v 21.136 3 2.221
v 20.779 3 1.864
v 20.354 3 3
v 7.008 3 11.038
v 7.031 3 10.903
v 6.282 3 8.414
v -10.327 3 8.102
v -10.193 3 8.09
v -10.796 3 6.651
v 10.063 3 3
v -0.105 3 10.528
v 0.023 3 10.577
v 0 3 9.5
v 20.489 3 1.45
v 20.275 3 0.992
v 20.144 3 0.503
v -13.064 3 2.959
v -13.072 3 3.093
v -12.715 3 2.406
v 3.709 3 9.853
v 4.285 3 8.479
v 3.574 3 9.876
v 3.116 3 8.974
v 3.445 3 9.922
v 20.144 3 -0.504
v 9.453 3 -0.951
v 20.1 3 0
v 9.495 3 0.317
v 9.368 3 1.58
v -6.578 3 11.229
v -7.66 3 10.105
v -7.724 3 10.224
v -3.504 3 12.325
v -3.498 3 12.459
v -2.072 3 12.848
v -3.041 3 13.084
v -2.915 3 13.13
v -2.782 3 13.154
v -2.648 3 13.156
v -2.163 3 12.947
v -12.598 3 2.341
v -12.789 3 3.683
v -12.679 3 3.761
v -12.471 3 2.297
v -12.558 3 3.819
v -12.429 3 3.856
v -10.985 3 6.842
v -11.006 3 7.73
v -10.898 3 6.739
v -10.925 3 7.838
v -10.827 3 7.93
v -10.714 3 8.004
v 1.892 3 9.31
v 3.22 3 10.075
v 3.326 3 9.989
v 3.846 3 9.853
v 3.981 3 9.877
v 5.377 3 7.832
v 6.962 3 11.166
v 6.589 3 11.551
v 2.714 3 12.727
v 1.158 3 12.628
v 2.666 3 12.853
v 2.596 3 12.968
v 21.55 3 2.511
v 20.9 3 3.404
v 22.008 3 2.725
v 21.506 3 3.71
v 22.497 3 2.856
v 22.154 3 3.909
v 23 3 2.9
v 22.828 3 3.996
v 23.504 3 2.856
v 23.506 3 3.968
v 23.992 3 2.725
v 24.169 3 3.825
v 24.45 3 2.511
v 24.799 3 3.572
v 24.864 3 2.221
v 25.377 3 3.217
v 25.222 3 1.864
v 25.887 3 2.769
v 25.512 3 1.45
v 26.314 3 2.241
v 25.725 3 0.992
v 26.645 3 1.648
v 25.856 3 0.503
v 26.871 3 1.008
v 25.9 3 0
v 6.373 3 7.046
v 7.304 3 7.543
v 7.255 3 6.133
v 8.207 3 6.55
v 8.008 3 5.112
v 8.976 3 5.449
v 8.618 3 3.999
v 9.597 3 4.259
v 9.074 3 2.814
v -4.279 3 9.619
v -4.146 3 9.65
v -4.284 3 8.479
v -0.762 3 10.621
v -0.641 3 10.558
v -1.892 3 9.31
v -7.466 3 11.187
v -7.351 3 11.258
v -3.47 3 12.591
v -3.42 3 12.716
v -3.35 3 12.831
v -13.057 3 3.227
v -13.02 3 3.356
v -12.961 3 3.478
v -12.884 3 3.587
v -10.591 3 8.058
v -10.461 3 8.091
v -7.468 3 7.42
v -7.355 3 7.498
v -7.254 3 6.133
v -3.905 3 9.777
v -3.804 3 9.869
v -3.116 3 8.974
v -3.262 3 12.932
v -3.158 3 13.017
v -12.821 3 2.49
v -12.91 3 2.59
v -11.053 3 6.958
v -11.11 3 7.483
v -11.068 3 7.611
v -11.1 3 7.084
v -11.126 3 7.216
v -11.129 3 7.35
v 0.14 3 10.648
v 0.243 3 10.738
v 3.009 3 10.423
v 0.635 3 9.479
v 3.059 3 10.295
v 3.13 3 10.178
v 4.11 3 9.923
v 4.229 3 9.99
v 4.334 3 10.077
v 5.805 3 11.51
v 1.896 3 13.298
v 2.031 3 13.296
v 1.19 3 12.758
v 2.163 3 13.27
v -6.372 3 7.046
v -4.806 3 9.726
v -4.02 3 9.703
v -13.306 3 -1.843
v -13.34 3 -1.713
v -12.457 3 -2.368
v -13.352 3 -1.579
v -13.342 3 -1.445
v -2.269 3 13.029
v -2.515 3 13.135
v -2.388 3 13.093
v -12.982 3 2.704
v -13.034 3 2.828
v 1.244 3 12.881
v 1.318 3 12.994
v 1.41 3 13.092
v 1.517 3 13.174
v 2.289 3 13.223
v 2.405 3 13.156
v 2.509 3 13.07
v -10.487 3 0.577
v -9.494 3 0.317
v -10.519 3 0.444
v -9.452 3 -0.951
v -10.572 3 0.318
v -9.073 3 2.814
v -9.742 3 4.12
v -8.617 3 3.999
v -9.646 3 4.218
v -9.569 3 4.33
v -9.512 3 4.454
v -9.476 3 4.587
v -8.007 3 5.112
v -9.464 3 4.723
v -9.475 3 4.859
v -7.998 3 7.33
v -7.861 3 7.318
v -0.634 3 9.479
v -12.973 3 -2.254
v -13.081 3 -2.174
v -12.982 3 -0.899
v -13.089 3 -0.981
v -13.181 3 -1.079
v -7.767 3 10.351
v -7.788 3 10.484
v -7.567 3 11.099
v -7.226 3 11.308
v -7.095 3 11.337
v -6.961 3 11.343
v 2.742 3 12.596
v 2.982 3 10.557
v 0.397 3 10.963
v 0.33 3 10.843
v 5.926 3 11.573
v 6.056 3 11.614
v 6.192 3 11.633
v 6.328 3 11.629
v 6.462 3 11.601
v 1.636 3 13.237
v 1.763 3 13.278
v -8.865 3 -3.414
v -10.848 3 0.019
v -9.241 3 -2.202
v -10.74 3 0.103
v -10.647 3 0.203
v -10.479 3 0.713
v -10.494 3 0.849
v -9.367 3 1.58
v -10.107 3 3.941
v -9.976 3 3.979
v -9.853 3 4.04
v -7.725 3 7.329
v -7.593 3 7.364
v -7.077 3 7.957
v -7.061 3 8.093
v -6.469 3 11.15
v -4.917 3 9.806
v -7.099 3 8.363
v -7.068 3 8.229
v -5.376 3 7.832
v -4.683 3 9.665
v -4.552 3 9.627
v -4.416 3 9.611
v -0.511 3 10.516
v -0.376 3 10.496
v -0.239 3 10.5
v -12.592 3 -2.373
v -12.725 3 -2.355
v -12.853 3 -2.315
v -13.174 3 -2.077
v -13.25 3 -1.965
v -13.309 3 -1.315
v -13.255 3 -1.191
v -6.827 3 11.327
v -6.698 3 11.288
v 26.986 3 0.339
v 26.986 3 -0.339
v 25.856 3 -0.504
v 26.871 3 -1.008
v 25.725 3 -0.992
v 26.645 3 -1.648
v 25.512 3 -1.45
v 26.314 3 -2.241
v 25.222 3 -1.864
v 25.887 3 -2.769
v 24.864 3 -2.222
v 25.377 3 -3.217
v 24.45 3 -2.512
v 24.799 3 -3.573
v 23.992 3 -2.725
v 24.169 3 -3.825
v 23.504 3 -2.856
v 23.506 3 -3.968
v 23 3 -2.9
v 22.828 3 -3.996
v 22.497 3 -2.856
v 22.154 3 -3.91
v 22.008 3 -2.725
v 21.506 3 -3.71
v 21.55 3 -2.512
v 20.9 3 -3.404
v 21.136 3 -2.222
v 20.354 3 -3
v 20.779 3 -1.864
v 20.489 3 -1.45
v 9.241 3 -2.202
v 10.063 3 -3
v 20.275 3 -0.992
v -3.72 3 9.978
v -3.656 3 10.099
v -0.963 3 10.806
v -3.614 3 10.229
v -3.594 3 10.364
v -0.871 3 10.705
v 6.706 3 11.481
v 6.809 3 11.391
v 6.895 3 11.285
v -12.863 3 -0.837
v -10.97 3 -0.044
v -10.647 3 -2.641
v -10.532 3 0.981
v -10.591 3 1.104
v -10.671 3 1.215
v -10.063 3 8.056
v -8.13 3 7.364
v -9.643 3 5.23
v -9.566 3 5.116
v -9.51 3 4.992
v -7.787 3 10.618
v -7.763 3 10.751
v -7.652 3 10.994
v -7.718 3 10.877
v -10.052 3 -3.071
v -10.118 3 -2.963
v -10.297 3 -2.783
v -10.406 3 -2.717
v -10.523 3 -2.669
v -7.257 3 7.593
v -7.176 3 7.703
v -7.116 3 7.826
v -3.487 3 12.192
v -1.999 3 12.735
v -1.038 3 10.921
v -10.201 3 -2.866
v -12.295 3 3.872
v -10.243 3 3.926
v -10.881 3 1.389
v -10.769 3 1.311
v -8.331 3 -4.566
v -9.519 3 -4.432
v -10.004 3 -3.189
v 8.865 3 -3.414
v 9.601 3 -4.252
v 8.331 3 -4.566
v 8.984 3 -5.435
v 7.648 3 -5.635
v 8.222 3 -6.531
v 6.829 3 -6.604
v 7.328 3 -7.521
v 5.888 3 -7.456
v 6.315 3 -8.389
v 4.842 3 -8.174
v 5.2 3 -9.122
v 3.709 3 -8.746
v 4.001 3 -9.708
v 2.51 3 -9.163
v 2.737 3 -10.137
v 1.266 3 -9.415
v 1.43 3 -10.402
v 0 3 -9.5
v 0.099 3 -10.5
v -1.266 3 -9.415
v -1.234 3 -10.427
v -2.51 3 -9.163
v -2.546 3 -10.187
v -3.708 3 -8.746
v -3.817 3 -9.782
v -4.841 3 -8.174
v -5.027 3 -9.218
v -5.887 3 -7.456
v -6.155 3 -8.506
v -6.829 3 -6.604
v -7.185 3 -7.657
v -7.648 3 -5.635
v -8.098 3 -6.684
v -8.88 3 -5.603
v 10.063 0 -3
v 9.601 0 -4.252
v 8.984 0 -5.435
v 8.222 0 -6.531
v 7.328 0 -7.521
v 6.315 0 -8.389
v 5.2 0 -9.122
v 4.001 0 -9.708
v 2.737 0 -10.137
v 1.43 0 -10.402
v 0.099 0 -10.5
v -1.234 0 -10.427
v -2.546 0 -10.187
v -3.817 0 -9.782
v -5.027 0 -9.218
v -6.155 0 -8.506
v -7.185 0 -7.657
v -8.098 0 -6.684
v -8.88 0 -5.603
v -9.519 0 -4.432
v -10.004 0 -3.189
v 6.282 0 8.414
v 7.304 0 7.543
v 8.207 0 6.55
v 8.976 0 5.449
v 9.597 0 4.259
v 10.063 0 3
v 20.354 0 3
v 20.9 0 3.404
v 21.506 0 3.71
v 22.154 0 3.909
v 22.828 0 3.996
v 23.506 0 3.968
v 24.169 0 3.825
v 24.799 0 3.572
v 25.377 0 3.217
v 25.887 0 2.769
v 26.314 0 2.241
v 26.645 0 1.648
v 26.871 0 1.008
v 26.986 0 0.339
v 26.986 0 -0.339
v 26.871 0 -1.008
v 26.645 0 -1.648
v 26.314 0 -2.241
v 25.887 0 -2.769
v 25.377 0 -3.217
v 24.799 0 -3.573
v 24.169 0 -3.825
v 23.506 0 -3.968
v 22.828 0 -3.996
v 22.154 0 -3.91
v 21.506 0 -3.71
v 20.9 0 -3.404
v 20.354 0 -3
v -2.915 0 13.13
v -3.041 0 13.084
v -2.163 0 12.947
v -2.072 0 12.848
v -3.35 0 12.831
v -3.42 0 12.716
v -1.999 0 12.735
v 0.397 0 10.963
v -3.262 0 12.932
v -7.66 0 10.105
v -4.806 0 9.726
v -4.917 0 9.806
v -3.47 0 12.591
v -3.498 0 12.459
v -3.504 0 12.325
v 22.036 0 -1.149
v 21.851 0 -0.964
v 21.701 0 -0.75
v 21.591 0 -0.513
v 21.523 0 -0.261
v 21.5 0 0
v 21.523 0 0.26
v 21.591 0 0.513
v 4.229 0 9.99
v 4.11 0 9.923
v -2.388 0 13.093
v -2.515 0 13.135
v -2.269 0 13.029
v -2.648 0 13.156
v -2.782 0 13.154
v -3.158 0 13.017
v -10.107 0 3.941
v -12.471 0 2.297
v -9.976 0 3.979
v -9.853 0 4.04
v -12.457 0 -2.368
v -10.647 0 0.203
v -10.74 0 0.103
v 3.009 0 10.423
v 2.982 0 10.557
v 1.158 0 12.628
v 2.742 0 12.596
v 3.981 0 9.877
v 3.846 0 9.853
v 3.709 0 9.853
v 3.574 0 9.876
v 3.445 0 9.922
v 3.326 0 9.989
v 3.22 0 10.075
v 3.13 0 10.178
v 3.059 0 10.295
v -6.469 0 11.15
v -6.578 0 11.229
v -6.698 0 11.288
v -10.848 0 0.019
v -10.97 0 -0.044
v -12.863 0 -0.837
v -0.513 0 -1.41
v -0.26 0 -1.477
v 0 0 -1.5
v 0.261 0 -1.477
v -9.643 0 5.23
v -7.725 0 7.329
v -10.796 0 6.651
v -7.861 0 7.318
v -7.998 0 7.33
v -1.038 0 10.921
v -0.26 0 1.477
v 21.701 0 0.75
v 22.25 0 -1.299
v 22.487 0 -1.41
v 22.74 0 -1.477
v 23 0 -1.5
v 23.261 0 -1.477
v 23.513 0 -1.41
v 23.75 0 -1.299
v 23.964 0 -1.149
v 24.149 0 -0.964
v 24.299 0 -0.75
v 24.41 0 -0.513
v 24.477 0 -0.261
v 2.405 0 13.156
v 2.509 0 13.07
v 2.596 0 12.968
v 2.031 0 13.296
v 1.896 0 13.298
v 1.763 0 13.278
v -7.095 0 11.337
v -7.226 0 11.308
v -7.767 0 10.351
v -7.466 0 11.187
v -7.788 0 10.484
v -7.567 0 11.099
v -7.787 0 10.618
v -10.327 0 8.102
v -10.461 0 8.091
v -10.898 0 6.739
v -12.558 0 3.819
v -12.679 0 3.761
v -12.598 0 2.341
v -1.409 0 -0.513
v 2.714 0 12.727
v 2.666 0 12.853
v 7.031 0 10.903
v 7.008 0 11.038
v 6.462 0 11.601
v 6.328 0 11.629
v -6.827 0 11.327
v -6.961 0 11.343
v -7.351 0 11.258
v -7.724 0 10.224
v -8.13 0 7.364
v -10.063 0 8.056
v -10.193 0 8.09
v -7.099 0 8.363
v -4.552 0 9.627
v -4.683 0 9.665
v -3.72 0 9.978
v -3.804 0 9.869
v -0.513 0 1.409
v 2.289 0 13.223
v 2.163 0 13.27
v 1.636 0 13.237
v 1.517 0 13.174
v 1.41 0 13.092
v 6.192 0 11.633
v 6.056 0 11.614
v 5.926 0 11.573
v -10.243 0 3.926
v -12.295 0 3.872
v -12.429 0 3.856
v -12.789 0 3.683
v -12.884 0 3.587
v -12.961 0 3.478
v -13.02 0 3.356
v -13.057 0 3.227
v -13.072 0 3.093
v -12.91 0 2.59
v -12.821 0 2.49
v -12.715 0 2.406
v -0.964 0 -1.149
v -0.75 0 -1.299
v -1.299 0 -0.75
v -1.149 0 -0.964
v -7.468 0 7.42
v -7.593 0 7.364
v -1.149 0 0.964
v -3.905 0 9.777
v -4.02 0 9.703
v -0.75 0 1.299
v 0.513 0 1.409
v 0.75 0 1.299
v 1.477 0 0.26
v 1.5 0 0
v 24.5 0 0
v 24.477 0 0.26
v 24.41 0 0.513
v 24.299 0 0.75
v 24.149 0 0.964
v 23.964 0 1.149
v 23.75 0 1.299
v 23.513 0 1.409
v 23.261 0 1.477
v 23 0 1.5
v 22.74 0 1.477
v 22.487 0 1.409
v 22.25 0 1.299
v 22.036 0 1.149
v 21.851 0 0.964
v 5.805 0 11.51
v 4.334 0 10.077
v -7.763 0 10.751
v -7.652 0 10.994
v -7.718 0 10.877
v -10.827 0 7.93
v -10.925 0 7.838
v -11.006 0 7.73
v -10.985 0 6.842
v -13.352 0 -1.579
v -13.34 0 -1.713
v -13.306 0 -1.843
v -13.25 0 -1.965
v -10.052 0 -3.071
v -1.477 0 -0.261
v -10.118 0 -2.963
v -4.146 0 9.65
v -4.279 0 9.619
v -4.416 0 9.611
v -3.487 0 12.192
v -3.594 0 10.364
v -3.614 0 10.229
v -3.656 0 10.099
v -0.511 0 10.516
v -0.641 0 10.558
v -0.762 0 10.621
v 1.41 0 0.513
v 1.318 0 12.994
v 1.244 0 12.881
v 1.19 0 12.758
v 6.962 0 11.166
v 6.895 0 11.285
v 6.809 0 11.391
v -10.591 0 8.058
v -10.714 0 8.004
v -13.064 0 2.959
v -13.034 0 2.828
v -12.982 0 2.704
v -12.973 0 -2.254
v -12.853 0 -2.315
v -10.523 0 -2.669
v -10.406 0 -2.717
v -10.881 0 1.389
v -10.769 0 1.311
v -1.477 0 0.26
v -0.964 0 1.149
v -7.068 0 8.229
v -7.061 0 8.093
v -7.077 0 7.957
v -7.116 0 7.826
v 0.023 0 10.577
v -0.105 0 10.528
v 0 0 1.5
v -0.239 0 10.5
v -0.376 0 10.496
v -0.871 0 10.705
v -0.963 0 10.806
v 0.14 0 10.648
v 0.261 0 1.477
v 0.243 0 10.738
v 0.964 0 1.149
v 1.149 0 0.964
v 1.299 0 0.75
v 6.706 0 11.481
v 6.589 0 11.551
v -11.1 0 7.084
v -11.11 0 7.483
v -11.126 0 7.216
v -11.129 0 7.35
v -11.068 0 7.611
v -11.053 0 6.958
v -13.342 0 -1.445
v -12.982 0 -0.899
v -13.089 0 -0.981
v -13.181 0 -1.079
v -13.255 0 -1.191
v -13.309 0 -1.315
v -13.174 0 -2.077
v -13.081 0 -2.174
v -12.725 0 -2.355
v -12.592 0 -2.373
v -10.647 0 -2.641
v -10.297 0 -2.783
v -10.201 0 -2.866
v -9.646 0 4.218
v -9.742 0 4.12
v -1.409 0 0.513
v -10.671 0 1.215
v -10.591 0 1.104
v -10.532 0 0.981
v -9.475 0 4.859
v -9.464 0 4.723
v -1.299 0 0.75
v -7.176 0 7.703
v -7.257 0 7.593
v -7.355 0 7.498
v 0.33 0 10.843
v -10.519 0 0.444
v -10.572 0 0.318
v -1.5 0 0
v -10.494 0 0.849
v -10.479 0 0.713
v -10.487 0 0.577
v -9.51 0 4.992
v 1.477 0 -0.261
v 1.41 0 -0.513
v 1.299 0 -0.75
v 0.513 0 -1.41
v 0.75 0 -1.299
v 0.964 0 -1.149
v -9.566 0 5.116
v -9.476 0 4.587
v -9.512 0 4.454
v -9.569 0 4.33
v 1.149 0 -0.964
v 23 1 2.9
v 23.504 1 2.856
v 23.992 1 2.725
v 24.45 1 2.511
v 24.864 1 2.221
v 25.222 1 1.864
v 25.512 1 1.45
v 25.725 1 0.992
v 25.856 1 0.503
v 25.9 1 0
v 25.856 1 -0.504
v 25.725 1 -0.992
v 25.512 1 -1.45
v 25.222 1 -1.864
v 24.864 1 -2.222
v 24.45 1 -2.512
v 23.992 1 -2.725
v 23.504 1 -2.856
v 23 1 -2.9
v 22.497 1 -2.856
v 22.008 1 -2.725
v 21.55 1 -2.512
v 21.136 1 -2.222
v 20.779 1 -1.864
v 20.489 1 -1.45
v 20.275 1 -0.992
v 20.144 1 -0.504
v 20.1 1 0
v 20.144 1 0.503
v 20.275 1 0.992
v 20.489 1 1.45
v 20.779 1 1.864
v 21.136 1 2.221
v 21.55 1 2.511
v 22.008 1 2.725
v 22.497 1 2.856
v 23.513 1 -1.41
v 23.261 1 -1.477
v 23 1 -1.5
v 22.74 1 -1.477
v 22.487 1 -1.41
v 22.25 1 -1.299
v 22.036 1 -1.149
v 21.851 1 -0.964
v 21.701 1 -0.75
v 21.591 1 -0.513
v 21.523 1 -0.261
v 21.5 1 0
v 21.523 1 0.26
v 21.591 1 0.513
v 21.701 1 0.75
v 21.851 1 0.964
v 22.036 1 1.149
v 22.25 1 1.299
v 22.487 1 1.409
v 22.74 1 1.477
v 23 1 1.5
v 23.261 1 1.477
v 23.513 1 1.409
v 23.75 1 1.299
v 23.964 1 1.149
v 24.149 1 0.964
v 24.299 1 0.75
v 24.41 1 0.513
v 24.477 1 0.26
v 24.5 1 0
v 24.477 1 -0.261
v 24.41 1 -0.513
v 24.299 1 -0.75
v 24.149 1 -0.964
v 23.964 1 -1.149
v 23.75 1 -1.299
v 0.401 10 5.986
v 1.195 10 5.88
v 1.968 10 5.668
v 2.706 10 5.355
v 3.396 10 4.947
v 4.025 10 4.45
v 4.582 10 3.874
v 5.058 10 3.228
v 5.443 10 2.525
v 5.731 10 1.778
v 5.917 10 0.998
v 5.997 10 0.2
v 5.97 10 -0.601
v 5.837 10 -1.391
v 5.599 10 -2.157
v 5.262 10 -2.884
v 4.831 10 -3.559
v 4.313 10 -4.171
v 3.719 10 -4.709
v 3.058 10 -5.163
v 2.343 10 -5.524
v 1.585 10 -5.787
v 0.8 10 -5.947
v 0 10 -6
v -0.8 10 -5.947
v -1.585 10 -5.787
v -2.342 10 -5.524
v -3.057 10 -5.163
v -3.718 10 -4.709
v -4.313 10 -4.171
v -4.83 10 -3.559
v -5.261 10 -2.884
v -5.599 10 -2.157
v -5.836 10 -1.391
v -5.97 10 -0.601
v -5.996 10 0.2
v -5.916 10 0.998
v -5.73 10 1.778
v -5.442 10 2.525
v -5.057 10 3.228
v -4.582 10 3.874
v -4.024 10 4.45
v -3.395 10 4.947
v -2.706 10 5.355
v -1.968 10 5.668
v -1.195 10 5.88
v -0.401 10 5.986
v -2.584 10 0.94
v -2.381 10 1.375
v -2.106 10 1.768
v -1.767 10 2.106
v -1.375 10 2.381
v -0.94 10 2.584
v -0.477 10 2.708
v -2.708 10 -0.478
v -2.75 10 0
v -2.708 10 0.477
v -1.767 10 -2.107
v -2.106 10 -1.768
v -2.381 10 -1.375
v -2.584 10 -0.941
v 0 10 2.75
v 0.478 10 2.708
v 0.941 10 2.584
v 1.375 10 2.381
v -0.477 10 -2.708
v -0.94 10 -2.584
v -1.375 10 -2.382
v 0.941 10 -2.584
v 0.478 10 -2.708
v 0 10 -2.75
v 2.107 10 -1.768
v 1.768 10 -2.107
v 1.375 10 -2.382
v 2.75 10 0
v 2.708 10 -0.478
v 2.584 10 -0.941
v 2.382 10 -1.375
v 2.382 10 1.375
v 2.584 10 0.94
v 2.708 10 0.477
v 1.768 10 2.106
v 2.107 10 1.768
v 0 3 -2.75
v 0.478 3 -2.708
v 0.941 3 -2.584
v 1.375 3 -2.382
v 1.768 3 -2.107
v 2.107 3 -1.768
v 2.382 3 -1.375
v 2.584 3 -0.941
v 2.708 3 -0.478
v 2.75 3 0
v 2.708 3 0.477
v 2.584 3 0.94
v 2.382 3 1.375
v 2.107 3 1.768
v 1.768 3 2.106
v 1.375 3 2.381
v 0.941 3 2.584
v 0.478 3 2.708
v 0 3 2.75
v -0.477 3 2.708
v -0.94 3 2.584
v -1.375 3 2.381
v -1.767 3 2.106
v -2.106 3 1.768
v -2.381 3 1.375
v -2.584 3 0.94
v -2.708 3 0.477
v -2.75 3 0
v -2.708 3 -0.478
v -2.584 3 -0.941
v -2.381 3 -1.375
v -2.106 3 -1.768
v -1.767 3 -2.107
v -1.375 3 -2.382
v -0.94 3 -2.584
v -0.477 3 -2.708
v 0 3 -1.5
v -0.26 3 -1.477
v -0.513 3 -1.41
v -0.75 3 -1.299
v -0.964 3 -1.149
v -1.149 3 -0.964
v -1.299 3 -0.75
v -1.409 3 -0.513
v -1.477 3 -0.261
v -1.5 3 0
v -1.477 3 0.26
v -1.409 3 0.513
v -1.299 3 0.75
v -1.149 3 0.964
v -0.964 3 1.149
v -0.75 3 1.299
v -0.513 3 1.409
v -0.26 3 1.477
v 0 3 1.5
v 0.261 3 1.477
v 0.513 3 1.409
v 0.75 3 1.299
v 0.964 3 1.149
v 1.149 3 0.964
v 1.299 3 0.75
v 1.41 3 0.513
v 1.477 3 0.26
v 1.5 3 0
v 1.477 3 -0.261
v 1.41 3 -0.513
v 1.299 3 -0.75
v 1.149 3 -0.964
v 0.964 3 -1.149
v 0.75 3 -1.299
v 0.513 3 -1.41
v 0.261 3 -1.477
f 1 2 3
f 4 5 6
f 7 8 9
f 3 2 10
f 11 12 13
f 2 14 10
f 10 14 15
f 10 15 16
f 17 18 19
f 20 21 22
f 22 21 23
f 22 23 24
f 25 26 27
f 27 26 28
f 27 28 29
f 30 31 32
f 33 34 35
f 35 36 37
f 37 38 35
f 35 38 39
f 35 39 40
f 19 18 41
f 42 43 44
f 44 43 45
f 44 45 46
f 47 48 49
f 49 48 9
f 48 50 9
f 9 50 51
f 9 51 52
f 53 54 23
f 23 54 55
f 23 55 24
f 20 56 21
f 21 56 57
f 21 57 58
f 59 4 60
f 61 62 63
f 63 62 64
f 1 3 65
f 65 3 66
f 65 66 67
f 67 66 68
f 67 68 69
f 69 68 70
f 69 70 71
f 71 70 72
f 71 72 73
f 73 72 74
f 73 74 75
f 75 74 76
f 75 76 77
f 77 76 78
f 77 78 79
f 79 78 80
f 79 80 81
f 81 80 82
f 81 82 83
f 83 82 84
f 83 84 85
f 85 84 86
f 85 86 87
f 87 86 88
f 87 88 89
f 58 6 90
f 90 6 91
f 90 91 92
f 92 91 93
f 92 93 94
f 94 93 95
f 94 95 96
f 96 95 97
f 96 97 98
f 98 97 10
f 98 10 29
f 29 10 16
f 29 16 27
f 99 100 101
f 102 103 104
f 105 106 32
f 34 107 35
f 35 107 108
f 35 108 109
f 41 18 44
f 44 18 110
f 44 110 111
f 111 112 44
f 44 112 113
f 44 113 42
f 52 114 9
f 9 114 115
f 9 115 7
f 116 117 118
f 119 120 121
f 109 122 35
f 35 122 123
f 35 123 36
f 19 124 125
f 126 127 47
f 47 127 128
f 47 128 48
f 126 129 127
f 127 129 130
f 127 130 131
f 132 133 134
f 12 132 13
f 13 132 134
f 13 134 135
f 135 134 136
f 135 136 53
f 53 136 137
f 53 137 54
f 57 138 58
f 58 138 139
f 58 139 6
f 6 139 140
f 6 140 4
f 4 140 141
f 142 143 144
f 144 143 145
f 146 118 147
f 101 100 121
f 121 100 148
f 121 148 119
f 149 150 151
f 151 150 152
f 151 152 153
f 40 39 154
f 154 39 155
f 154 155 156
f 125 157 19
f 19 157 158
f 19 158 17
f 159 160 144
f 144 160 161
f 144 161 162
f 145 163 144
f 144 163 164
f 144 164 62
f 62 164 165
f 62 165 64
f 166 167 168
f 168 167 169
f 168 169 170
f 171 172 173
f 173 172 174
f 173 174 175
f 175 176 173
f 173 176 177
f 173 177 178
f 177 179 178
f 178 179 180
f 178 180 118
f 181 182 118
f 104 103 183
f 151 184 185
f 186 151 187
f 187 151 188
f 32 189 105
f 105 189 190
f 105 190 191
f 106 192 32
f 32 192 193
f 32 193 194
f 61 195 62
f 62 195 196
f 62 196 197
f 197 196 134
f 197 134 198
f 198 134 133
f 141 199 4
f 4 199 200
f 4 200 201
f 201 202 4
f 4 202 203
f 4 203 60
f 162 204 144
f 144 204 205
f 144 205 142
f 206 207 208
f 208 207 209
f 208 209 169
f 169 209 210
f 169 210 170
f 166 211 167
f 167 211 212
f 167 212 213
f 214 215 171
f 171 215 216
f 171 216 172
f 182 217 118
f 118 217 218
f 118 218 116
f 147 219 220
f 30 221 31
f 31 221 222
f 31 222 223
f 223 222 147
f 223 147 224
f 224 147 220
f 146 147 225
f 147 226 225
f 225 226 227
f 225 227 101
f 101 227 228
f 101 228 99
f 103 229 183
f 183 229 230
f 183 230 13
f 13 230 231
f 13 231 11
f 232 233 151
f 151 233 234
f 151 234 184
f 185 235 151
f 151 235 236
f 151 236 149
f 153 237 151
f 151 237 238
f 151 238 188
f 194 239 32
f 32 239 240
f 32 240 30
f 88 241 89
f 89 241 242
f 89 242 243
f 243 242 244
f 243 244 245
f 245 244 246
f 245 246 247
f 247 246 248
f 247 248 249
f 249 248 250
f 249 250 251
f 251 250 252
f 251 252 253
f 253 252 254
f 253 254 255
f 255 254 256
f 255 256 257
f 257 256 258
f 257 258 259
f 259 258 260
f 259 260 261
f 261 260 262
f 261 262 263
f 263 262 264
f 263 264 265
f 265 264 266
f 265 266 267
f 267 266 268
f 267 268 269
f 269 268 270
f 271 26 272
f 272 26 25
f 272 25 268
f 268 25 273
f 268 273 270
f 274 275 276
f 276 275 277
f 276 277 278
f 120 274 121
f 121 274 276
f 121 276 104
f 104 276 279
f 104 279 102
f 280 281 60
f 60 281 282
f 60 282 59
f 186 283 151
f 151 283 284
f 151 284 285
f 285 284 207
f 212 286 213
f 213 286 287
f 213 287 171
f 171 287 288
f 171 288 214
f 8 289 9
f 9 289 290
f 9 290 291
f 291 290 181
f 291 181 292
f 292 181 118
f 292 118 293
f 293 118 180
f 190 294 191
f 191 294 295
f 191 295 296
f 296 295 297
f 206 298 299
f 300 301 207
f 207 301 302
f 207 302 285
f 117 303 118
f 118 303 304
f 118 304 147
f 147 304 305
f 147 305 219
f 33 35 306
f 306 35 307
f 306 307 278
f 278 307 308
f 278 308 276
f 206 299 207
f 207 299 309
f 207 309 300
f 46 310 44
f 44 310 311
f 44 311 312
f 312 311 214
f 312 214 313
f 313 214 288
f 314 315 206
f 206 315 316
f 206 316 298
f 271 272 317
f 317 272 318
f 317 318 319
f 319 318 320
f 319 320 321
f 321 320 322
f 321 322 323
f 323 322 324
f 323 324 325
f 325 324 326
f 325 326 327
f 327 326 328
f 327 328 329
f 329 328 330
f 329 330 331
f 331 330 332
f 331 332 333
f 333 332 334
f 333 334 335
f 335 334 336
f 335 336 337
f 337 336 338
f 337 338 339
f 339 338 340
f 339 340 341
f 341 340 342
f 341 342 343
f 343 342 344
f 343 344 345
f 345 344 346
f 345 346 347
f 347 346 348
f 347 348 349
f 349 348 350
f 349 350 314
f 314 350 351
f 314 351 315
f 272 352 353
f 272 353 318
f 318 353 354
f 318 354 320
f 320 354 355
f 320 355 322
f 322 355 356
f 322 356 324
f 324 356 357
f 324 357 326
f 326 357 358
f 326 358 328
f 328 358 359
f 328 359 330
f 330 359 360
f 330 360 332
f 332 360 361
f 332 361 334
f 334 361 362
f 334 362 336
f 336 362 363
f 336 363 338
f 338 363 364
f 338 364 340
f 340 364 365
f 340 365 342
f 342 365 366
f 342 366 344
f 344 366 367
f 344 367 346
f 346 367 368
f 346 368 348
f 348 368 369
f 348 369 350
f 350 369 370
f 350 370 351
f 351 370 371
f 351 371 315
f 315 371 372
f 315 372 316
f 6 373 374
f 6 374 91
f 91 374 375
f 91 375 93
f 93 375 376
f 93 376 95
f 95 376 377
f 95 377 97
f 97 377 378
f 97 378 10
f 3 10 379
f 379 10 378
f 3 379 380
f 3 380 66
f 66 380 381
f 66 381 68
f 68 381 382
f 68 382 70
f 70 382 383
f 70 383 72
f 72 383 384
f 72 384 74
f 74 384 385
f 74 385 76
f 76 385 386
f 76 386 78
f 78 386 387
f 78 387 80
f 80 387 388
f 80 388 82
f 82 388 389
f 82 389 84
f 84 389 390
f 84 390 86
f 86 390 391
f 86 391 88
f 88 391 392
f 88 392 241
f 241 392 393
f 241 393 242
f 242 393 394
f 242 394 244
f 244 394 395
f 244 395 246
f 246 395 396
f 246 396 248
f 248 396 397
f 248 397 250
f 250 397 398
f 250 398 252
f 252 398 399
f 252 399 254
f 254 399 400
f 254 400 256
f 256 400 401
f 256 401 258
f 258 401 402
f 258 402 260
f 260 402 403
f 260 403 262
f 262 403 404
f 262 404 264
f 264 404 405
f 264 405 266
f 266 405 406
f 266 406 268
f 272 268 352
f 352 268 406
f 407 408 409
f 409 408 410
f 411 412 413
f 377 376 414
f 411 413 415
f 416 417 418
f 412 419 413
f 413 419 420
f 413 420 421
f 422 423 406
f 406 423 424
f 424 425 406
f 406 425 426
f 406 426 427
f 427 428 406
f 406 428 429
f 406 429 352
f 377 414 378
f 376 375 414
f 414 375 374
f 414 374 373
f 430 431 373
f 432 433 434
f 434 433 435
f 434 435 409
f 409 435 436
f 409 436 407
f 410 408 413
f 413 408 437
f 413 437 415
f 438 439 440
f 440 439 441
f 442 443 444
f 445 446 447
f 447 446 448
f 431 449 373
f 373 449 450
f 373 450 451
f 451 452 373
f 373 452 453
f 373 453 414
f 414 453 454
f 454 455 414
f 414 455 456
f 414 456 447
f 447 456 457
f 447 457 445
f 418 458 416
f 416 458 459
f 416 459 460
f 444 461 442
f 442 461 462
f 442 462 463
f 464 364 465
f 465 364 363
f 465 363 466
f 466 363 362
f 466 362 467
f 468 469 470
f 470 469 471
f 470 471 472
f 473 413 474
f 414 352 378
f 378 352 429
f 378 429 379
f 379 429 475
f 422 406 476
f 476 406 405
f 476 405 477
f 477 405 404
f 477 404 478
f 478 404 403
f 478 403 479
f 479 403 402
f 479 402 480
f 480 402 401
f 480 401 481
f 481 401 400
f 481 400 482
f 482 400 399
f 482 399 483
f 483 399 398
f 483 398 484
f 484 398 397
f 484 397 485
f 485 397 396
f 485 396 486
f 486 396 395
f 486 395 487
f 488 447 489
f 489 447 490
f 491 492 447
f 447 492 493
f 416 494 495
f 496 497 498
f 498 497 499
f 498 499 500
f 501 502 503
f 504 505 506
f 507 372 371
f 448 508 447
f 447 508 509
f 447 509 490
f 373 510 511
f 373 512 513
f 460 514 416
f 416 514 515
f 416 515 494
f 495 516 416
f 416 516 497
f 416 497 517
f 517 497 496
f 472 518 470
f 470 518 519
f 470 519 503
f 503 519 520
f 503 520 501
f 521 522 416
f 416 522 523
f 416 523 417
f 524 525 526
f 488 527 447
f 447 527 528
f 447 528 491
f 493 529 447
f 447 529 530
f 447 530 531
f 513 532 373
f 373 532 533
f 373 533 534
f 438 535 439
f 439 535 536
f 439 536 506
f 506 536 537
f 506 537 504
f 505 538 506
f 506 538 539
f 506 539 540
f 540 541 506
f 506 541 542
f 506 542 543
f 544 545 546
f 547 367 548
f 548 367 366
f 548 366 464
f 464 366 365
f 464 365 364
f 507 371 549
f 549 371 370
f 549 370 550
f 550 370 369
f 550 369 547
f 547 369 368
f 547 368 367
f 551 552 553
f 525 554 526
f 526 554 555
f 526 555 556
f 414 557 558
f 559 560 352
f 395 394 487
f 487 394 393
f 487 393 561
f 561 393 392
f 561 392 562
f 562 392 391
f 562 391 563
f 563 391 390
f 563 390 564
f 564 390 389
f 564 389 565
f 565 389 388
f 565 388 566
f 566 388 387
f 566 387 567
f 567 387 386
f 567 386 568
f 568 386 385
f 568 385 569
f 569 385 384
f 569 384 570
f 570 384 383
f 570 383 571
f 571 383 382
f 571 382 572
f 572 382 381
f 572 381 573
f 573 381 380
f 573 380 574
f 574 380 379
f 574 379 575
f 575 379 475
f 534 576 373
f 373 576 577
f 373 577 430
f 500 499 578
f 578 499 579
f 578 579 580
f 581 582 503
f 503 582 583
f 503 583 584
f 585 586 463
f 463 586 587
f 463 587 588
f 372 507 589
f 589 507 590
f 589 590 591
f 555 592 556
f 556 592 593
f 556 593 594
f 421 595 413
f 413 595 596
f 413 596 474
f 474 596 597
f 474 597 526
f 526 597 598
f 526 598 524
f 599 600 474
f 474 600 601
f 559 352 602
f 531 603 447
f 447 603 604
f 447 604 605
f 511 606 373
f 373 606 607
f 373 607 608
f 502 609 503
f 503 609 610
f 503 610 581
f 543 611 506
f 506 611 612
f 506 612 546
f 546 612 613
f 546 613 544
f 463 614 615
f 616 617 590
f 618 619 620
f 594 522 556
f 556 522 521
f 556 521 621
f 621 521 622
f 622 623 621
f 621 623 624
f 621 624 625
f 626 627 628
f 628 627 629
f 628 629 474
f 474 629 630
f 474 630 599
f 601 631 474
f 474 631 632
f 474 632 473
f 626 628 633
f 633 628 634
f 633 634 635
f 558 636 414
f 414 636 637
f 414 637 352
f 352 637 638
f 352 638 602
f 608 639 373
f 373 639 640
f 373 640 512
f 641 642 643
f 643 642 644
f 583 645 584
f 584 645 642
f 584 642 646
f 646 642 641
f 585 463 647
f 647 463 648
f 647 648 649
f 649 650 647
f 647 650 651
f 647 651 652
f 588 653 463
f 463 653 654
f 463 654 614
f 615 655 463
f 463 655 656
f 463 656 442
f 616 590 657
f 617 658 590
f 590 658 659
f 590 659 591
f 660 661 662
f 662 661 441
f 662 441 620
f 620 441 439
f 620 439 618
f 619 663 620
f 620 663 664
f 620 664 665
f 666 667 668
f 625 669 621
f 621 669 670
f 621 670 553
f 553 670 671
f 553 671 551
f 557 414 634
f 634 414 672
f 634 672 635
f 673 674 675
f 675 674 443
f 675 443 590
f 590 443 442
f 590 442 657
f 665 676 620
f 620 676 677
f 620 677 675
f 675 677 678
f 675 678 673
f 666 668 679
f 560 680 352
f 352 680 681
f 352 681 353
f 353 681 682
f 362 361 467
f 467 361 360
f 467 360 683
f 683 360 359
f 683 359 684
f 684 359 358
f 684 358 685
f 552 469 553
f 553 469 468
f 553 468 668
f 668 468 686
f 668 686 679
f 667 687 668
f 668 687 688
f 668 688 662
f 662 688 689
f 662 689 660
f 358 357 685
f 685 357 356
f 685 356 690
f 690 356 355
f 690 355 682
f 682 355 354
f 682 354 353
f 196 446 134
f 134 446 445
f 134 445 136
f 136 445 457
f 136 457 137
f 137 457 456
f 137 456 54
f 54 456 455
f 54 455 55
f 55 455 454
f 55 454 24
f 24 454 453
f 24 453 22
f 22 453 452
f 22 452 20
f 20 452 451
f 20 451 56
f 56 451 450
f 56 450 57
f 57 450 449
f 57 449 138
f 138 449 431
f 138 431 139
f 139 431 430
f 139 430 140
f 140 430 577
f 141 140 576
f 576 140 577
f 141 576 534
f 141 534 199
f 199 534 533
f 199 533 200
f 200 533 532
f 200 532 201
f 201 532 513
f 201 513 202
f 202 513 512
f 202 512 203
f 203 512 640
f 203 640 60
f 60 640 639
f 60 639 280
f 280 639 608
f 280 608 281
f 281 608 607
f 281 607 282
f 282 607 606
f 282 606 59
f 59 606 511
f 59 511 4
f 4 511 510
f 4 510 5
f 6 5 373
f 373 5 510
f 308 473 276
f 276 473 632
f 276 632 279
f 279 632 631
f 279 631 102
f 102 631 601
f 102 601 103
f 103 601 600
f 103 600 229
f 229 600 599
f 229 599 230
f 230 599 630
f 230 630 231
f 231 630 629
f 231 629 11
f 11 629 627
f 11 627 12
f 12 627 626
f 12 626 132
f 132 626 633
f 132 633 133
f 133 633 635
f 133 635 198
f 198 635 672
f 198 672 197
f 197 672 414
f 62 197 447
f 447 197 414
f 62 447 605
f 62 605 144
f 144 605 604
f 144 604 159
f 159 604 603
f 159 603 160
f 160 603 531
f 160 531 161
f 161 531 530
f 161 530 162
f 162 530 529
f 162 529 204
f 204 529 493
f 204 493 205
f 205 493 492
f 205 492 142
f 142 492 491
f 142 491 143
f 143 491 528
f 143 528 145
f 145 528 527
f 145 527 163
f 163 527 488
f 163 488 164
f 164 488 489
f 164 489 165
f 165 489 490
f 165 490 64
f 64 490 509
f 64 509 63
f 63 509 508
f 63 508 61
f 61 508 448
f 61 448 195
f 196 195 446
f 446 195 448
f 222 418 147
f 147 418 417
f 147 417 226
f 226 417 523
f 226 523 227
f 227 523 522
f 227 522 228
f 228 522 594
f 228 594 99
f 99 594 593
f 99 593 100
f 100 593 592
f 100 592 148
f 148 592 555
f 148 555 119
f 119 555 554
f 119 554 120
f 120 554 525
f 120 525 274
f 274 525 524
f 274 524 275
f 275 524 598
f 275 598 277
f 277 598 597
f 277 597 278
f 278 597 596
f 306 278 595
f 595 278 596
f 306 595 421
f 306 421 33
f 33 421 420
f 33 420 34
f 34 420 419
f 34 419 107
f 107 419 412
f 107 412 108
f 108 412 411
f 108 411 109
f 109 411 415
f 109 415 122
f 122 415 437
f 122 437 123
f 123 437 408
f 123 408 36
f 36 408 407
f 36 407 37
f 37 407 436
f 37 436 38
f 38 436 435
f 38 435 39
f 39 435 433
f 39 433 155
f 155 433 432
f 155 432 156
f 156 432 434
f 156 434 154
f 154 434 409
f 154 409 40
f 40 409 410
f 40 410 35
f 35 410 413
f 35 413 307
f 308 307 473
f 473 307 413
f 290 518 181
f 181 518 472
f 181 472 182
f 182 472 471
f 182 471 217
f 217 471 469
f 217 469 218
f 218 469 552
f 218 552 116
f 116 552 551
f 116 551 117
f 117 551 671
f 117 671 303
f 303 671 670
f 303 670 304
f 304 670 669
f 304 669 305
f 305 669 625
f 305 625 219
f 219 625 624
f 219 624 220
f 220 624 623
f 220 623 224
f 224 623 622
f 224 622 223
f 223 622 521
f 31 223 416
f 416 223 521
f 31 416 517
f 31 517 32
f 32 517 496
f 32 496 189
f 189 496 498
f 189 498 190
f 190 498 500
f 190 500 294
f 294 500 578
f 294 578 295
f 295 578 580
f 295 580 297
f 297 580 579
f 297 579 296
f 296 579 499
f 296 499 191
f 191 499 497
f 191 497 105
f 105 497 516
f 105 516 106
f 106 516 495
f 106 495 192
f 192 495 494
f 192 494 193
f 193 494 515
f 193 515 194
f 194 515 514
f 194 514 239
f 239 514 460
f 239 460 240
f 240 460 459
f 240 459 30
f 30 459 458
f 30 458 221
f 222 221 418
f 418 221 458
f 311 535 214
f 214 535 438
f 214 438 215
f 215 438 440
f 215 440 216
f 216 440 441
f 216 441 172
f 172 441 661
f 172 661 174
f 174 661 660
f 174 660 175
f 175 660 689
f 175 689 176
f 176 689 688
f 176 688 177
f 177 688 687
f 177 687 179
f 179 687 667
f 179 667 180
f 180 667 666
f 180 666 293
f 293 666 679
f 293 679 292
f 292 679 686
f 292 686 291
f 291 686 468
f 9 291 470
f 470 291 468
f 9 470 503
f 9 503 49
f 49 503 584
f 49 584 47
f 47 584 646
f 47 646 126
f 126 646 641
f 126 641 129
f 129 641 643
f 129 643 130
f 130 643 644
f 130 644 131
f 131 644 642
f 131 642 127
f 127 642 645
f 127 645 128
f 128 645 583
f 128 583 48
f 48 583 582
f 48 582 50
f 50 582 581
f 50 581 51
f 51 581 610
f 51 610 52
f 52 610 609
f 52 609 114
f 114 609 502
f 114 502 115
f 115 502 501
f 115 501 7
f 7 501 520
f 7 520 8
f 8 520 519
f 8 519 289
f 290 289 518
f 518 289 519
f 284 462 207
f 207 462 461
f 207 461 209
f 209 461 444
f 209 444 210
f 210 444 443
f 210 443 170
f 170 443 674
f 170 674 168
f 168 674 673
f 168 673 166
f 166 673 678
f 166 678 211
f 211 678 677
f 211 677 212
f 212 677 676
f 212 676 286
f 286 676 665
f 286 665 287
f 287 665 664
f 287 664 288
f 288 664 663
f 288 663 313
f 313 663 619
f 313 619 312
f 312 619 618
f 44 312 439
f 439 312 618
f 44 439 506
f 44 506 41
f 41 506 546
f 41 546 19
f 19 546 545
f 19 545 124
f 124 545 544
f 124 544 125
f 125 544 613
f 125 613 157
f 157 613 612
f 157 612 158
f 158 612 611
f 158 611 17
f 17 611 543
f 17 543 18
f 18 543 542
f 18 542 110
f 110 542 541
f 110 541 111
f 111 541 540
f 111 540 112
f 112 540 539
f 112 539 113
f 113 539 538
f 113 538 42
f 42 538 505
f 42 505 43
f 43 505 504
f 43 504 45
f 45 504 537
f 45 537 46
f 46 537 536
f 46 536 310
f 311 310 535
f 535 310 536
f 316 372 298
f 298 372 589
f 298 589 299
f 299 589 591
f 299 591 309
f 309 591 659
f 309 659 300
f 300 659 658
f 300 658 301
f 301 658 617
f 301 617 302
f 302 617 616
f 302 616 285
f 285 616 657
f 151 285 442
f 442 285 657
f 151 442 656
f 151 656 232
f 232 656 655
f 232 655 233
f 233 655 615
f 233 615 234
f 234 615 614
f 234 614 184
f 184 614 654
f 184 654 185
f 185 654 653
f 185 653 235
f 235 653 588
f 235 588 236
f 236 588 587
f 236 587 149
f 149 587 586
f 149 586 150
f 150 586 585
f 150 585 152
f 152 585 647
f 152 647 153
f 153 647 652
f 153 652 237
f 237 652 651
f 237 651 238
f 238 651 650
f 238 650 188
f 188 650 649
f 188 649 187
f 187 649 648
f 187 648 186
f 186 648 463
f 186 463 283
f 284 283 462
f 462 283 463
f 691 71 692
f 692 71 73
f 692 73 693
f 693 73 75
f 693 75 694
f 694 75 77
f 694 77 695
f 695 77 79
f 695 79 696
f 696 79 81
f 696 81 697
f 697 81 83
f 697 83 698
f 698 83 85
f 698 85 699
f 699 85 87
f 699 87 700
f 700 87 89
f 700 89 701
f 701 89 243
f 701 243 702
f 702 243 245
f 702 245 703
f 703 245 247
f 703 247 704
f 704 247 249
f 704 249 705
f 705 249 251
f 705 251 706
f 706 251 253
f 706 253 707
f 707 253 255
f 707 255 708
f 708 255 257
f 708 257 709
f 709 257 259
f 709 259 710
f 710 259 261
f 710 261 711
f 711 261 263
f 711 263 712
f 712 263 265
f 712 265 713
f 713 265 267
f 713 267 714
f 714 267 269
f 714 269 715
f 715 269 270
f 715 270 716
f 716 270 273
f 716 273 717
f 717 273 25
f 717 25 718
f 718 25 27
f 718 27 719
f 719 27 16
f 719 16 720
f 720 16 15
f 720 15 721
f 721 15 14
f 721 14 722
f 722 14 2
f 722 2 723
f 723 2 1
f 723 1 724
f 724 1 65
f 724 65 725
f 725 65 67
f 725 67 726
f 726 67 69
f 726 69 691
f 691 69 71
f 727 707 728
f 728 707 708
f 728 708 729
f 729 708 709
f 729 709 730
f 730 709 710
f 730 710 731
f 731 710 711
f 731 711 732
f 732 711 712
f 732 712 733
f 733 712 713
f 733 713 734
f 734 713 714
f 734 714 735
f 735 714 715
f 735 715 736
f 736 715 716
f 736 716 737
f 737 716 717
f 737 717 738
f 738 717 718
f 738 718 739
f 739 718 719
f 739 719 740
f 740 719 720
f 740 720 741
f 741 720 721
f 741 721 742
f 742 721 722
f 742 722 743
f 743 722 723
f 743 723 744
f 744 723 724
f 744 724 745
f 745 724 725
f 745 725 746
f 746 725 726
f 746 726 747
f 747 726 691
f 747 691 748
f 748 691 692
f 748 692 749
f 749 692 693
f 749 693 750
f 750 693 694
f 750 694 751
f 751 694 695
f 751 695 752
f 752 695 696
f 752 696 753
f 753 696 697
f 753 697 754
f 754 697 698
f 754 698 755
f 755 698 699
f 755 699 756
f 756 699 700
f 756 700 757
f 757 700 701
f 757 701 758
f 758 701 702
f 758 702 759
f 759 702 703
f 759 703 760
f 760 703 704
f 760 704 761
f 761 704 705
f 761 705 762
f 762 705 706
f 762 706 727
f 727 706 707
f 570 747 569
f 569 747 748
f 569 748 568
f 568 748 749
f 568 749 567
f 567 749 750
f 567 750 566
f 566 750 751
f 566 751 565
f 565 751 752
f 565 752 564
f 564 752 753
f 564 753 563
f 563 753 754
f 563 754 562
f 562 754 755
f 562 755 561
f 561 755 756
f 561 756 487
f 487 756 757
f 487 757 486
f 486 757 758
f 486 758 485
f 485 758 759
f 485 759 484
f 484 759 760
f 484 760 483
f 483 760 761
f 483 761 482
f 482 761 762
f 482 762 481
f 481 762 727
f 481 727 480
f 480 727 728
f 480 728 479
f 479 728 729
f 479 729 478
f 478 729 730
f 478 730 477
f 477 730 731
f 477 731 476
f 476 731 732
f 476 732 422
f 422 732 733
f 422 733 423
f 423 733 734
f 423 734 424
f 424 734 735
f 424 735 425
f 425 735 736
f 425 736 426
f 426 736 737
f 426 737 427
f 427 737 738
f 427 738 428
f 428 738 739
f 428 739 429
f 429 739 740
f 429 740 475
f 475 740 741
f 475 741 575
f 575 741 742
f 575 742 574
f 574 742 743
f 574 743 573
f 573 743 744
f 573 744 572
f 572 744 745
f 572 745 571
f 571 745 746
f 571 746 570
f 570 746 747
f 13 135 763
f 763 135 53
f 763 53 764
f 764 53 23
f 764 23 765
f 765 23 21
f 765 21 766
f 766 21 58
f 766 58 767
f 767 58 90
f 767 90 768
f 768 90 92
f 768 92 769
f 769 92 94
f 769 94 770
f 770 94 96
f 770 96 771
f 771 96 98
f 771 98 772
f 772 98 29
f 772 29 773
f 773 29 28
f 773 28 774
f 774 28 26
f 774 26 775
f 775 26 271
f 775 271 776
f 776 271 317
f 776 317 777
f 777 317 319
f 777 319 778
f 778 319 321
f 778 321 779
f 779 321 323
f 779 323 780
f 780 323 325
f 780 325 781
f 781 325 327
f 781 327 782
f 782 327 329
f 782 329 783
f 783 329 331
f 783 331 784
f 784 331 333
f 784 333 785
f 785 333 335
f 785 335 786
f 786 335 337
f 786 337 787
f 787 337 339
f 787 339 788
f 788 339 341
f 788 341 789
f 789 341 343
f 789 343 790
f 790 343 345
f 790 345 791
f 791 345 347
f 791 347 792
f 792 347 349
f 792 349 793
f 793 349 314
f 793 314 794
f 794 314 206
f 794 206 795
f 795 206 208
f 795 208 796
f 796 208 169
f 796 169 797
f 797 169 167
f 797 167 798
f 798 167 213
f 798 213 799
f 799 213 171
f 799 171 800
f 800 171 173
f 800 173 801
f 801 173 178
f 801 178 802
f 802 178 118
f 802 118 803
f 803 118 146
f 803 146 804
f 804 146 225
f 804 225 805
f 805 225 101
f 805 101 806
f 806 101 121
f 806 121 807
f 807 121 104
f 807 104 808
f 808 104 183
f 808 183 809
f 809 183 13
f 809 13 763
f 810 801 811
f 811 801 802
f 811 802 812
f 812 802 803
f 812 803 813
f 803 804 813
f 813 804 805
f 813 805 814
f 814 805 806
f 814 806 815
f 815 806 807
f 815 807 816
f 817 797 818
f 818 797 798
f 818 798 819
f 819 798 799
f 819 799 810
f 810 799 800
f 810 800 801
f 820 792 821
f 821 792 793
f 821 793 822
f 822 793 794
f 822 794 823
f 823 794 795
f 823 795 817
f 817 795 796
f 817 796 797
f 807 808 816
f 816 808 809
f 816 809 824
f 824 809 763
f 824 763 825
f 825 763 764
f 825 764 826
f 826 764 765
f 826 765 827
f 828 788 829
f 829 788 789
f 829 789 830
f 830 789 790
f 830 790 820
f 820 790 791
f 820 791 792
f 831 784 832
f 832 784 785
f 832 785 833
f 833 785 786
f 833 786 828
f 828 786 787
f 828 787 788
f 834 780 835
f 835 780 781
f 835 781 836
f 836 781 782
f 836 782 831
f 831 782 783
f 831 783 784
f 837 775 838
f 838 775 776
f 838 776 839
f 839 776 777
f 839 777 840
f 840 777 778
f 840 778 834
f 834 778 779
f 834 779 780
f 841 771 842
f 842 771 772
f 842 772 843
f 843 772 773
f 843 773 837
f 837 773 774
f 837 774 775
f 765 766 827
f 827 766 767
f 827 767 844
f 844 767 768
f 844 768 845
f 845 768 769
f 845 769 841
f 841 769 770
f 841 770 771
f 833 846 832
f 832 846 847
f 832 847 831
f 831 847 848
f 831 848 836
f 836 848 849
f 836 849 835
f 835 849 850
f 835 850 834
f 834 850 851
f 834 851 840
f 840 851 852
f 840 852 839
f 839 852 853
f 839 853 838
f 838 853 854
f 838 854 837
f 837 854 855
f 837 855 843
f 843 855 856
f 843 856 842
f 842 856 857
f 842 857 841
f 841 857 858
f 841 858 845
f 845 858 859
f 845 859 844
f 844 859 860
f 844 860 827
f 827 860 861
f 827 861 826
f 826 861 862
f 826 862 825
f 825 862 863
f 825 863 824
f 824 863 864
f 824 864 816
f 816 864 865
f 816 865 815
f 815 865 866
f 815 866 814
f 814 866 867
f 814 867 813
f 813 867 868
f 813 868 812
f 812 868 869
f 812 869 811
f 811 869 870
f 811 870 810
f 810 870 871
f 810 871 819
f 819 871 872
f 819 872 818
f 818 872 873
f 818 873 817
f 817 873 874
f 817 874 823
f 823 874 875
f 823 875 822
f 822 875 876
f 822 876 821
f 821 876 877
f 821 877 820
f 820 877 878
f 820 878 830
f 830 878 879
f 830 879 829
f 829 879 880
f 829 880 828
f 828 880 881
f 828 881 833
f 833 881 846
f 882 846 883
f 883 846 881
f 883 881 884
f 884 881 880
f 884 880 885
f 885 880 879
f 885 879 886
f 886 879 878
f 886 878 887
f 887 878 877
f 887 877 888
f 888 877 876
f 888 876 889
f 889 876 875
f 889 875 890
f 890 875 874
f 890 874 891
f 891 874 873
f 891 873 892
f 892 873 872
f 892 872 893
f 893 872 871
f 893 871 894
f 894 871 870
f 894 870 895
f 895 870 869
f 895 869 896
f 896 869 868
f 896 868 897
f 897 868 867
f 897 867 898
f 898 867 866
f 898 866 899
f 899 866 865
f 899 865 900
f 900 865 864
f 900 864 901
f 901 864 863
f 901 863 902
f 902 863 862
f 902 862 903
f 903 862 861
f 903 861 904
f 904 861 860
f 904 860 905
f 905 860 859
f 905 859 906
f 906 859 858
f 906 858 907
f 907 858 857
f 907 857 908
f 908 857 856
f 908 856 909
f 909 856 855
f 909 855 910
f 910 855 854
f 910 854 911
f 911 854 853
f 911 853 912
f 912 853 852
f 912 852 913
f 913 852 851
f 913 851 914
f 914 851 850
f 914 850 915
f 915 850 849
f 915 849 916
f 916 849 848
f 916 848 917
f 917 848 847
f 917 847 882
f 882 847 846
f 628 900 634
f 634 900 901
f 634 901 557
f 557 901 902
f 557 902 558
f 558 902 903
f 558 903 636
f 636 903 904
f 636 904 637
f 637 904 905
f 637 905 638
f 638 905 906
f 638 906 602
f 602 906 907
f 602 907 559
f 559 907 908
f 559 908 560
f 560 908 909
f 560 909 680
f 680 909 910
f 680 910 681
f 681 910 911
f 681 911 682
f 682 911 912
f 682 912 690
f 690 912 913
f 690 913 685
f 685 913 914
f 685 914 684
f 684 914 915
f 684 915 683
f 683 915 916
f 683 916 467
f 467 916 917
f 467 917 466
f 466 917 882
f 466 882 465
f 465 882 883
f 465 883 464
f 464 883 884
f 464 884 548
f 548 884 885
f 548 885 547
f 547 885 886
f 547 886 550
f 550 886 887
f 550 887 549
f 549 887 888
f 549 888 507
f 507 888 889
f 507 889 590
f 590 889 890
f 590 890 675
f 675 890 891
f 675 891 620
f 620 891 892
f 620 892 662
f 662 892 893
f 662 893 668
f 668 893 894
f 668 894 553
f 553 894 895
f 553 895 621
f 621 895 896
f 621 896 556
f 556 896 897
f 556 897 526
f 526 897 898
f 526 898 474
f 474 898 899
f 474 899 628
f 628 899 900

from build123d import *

# Parameters (mm, degrees)
BOSS_EXTRUDE1_DEPTH = 3
BOSS_EXTRUDE2_DEPTH = 3
SKETCH3_R           = 2.9
CUT_EXTRUDE1_DEPTH  = 2
SKETCH4_R           = 1.5
CUT_EXTRUDE2_DEPTH  = 31.164382971
SKETCH8_R           = 1.5
CUT_EXTRUDE4_DEPTH  = 31.901294471


# Read off the part's stored shape, not the designer's step: Boss-Extrude2
with BuildPart() as part:
    # Sketch1 → Boss-Extrude1 (new body)
    with BuildSketch(Plane(origin=(0, 0, 0), x_dir=(1, 0, 0), z_dir=(0, 1, 0))):
        with BuildLine():
            Line((10.062305899, 3), (20.354248689, 3))
            ThreePointArc((20.354248689, 3), (27, 0), (20.354248689, -3))
            Line((20.354248689, -3), (10.062305899, -3))
            ThreePointArc((10.062305899, -3), (-10.5, 0), (10.062305899, 3))
        make_face()
    extrude(amount=BOSS_EXTRUDE1_DEPTH)

    # Boss-Extrude2 outline → Boss-Extrude2 (add)
    with BuildSketch(Plane(origin=(0, 0, 0), x_dir=(1, 0, 0), z_dir=(0, 1, 0))):
        with BuildLine():
            ThreePointArc((-10.969752428, 0.043811644), (-10.62658841, -0.230674076), (-10.480170576, -0.64499976))
            ThreePointArc((-10.480170576, -0.64499976), (-10.419978693, 1.293848534), (-10.00416019, 3.188538678))
            ThreePointArc((-10.00416019, 3.188538678), (-10.247462878, 2.822604668), (-10.647336332, 2.640381949))
            Line((-10.647336332, 2.640381949), (-12.457605143, 2.367968327))
            ThreePointArc((-12.457605143, 2.367968327), (-13.325815839, 1.778572113), (-12.863493028, 0.836534254))
            Line((-12.863493028, 0.836534254), (-12.861422527, 0.835664125))
            Line((-12.861422527, 0.835664125), (-10.969752428, 0.043811644))
        make_face()
        with BuildLine():
            ThreePointArc((-10.243204649, -3.926085368), (-9.824003519, -4.057898639), (-9.53766434, -4.391236606))
            ThreePointArc((-9.53766434, -4.391236606), (-10.18268144, -2.561835023), (-10.480170576, -0.64499976))
            ThreePointArc((-10.480170576, -0.64499976), (-10.574676775, -1.074152903), (-10.881592069, -1.388647488))
            Line((-10.881592069, -1.388647488), (-12.470837309, -2.297262873))
            ThreePointArc((-12.470837309, -2.297262873), (-13.067150653, -3.16073731), (-12.295452057, -3.87183434))
            Line((-12.295452057, -3.87183434), (-12.293207019, -3.871896838))
            Line((-12.293207019, -3.871896838), (-10.243204649, -3.926085368))
        make_face()
        with BuildLine():
            ThreePointArc((-8.130214562, -7.364577311), (-7.691719937, -7.33587578), (-7.304217543, -7.543103214))
            ThreePointArc((-7.304217543, -7.543103214), (-8.567135584, -6.070765016), (-9.53766434, -4.391236606))
            ThreePointArc((-9.53766434, -4.391236606), (-9.470582821, -4.825521696), (-9.64299823, -5.229720158))
            Line((-9.64299823, -5.229720158), (-10.796111745, -6.651554034))
            ThreePointArc((-10.796111745, -6.651554034), (-11.039815297, -7.672233361), (-10.06319217, -8.056140874))
            Line((-10.06319217, -8.056140874), (-10.061076468, -8.055387281))
            Line((-10.061076468, -8.055387281), (-8.130214562, -7.364577311))
        make_face()
        with BuildLine():
            ThreePointArc((-4.916780441, -9.806256059), (-4.518336336, -9.620925825), (-4.08211637, -9.674002581))
            ThreePointArc((-4.08211637, -9.674002581), (-5.792005958, -8.758005879), (-7.304217543, -7.543103214))
            ThreePointArc((-7.304217543, -7.543103214), (-7.084623431, -7.923740715), (-7.099201461, -8.362937666))
            Line((-7.099201461, -8.362937666), (-7.660106573, -10.105541409))
            ThreePointArc((-7.660106573, -10.105541409), (-7.518214471, -11.145274231), (-6.468855097, -11.150029425))
            Line((-6.468855097, -11.150029425), (-6.467155094, -11.148561743))
            Line((-6.467155094, -11.148561743), (-4.916780441, -9.806256059))
        make_face()
        with BuildLine():
            ThreePointArc((-1.037848299, -10.920634538), (-0.733386184, -10.603757733), (-0.307489921, -10.495496651))
            ThreePointArc((-0.307489921, -10.495496651), (-2.232907068, -10.259830702), (-4.08211637, -9.674002581))
            ThreePointArc((-4.08211637, -9.674002581), (-3.739741201, -9.949469528), (-3.594510754, -10.364211511))
            Line((-3.594510754, -10.364211511), (-3.48728761, -12.191719526))
            ThreePointArc((-3.48728761, -12.191719526), (-2.979005292, -13.109775513), (-1.998942976, -12.734734761))
            Line((-1.998942976, -12.734734761), (-1.997888773, -12.732751643))
            Line((-1.997888773, -12.732751643), (-1.037848299, -10.920634538))
        make_face()
        with BuildLine():
            ThreePointArc((2.981559098, -10.556878949), (3.150822189, -10.151350876), (3.508737967, -9.896401259))
            ThreePointArc((3.508737967, -9.896401259), (1.628412136, -10.372958783), (-0.307489921, -10.495496651))
            ThreePointArc((-0.307489921, -10.495496651), (0.111325954, -10.628511574), (0.396705602, -10.962664478))
            Line((0.396705602, -10.962664478), (1.157544092, -12.627719175))
            ThreePointArc((1.157544092, -12.627719175), (1.963419396, -13.299837247), (2.741530869, -12.595763214))
            Line((2.741530869, -12.595763214), (2.741796583, -12.59353308))
            Line((2.741796583, -12.59353308), (2.981559098, -10.556878949))
        make_face()
        with BuildLine():
            Line((7.031129829, -10.903441128), (6.281480785, -8.413857567))
            ThreePointArc((6.281480785, -8.413857567), (4.950917062, -9.25950432), (3.508737967, -9.896401259))
            ThreePointArc((3.508737967, -9.896401259), (3.947316897, -9.868954826), (4.334226904, -10.077294525))
            Line((4.334226904, -10.077294525), (5.804964161, -11.509633365))
            ThreePointArc((5.804964161, -11.509633365), (6.588651042, -11.551623858), (7.031129829, -10.903441128))
        make_face()
    extrude(amount=BOSS_EXTRUDE2_DEPTH)

    # Sketch3 → Cut-Extrude1 (cut)
    with BuildSketch(Plane(origin=(0, 3, 0), x_dir=(1, 0, 0), z_dir=(0, 1, 0))):
        with Locations(Location((23, 0, 0), (0, 0, 270))):
            Circle(SKETCH3_R)
    extrude(amount=-CUT_EXTRUDE1_DEPTH, mode=Mode.SUBTRACT)

    # Sketch4 → Cut-Extrude2 (cut, through all)
    with BuildSketch(Plane(origin=(0, 1, 0), x_dir=(1, 0, 0), z_dir=(0, 1, 0))):
        with Locations(Location((23, 0, 0), (0, 0, 270))):
            Circle(SKETCH4_R)
    extrude(amount=-CUT_EXTRUDE2_DEPTH, mode=Mode.SUBTRACT)

    # Sketch7 → Revolve1 (revolve)
    with BuildSketch(Plane.XY, mode=Mode.PRIVATE) as revolve1_sk:
        Polygon((2.75, 3), (9.5, 3), (6, 10), (2.75, 10), align=None)
    revolve(revolve1_sk.sketch.rotate(Axis((0, 0, 0), (0, 1, 0)), 90), axis=Axis((0, 0, 0), (0, 1, 0)))

    # Sketch8 → Cut-Extrude4 (cut, through all)
    with BuildSketch(Plane(origin=(0, 3, 0), x_dir=(1, 0, 0), z_dir=(0, 1, 0))):
        with Locations(Location((0, 0, 0), (0, 0, 270))):
            Circle(SKETCH8_R)
    extrude(amount=-CUT_EXTRUDE4_DEPTH, mode=Mode.SUBTRACT)


solid = part.part
